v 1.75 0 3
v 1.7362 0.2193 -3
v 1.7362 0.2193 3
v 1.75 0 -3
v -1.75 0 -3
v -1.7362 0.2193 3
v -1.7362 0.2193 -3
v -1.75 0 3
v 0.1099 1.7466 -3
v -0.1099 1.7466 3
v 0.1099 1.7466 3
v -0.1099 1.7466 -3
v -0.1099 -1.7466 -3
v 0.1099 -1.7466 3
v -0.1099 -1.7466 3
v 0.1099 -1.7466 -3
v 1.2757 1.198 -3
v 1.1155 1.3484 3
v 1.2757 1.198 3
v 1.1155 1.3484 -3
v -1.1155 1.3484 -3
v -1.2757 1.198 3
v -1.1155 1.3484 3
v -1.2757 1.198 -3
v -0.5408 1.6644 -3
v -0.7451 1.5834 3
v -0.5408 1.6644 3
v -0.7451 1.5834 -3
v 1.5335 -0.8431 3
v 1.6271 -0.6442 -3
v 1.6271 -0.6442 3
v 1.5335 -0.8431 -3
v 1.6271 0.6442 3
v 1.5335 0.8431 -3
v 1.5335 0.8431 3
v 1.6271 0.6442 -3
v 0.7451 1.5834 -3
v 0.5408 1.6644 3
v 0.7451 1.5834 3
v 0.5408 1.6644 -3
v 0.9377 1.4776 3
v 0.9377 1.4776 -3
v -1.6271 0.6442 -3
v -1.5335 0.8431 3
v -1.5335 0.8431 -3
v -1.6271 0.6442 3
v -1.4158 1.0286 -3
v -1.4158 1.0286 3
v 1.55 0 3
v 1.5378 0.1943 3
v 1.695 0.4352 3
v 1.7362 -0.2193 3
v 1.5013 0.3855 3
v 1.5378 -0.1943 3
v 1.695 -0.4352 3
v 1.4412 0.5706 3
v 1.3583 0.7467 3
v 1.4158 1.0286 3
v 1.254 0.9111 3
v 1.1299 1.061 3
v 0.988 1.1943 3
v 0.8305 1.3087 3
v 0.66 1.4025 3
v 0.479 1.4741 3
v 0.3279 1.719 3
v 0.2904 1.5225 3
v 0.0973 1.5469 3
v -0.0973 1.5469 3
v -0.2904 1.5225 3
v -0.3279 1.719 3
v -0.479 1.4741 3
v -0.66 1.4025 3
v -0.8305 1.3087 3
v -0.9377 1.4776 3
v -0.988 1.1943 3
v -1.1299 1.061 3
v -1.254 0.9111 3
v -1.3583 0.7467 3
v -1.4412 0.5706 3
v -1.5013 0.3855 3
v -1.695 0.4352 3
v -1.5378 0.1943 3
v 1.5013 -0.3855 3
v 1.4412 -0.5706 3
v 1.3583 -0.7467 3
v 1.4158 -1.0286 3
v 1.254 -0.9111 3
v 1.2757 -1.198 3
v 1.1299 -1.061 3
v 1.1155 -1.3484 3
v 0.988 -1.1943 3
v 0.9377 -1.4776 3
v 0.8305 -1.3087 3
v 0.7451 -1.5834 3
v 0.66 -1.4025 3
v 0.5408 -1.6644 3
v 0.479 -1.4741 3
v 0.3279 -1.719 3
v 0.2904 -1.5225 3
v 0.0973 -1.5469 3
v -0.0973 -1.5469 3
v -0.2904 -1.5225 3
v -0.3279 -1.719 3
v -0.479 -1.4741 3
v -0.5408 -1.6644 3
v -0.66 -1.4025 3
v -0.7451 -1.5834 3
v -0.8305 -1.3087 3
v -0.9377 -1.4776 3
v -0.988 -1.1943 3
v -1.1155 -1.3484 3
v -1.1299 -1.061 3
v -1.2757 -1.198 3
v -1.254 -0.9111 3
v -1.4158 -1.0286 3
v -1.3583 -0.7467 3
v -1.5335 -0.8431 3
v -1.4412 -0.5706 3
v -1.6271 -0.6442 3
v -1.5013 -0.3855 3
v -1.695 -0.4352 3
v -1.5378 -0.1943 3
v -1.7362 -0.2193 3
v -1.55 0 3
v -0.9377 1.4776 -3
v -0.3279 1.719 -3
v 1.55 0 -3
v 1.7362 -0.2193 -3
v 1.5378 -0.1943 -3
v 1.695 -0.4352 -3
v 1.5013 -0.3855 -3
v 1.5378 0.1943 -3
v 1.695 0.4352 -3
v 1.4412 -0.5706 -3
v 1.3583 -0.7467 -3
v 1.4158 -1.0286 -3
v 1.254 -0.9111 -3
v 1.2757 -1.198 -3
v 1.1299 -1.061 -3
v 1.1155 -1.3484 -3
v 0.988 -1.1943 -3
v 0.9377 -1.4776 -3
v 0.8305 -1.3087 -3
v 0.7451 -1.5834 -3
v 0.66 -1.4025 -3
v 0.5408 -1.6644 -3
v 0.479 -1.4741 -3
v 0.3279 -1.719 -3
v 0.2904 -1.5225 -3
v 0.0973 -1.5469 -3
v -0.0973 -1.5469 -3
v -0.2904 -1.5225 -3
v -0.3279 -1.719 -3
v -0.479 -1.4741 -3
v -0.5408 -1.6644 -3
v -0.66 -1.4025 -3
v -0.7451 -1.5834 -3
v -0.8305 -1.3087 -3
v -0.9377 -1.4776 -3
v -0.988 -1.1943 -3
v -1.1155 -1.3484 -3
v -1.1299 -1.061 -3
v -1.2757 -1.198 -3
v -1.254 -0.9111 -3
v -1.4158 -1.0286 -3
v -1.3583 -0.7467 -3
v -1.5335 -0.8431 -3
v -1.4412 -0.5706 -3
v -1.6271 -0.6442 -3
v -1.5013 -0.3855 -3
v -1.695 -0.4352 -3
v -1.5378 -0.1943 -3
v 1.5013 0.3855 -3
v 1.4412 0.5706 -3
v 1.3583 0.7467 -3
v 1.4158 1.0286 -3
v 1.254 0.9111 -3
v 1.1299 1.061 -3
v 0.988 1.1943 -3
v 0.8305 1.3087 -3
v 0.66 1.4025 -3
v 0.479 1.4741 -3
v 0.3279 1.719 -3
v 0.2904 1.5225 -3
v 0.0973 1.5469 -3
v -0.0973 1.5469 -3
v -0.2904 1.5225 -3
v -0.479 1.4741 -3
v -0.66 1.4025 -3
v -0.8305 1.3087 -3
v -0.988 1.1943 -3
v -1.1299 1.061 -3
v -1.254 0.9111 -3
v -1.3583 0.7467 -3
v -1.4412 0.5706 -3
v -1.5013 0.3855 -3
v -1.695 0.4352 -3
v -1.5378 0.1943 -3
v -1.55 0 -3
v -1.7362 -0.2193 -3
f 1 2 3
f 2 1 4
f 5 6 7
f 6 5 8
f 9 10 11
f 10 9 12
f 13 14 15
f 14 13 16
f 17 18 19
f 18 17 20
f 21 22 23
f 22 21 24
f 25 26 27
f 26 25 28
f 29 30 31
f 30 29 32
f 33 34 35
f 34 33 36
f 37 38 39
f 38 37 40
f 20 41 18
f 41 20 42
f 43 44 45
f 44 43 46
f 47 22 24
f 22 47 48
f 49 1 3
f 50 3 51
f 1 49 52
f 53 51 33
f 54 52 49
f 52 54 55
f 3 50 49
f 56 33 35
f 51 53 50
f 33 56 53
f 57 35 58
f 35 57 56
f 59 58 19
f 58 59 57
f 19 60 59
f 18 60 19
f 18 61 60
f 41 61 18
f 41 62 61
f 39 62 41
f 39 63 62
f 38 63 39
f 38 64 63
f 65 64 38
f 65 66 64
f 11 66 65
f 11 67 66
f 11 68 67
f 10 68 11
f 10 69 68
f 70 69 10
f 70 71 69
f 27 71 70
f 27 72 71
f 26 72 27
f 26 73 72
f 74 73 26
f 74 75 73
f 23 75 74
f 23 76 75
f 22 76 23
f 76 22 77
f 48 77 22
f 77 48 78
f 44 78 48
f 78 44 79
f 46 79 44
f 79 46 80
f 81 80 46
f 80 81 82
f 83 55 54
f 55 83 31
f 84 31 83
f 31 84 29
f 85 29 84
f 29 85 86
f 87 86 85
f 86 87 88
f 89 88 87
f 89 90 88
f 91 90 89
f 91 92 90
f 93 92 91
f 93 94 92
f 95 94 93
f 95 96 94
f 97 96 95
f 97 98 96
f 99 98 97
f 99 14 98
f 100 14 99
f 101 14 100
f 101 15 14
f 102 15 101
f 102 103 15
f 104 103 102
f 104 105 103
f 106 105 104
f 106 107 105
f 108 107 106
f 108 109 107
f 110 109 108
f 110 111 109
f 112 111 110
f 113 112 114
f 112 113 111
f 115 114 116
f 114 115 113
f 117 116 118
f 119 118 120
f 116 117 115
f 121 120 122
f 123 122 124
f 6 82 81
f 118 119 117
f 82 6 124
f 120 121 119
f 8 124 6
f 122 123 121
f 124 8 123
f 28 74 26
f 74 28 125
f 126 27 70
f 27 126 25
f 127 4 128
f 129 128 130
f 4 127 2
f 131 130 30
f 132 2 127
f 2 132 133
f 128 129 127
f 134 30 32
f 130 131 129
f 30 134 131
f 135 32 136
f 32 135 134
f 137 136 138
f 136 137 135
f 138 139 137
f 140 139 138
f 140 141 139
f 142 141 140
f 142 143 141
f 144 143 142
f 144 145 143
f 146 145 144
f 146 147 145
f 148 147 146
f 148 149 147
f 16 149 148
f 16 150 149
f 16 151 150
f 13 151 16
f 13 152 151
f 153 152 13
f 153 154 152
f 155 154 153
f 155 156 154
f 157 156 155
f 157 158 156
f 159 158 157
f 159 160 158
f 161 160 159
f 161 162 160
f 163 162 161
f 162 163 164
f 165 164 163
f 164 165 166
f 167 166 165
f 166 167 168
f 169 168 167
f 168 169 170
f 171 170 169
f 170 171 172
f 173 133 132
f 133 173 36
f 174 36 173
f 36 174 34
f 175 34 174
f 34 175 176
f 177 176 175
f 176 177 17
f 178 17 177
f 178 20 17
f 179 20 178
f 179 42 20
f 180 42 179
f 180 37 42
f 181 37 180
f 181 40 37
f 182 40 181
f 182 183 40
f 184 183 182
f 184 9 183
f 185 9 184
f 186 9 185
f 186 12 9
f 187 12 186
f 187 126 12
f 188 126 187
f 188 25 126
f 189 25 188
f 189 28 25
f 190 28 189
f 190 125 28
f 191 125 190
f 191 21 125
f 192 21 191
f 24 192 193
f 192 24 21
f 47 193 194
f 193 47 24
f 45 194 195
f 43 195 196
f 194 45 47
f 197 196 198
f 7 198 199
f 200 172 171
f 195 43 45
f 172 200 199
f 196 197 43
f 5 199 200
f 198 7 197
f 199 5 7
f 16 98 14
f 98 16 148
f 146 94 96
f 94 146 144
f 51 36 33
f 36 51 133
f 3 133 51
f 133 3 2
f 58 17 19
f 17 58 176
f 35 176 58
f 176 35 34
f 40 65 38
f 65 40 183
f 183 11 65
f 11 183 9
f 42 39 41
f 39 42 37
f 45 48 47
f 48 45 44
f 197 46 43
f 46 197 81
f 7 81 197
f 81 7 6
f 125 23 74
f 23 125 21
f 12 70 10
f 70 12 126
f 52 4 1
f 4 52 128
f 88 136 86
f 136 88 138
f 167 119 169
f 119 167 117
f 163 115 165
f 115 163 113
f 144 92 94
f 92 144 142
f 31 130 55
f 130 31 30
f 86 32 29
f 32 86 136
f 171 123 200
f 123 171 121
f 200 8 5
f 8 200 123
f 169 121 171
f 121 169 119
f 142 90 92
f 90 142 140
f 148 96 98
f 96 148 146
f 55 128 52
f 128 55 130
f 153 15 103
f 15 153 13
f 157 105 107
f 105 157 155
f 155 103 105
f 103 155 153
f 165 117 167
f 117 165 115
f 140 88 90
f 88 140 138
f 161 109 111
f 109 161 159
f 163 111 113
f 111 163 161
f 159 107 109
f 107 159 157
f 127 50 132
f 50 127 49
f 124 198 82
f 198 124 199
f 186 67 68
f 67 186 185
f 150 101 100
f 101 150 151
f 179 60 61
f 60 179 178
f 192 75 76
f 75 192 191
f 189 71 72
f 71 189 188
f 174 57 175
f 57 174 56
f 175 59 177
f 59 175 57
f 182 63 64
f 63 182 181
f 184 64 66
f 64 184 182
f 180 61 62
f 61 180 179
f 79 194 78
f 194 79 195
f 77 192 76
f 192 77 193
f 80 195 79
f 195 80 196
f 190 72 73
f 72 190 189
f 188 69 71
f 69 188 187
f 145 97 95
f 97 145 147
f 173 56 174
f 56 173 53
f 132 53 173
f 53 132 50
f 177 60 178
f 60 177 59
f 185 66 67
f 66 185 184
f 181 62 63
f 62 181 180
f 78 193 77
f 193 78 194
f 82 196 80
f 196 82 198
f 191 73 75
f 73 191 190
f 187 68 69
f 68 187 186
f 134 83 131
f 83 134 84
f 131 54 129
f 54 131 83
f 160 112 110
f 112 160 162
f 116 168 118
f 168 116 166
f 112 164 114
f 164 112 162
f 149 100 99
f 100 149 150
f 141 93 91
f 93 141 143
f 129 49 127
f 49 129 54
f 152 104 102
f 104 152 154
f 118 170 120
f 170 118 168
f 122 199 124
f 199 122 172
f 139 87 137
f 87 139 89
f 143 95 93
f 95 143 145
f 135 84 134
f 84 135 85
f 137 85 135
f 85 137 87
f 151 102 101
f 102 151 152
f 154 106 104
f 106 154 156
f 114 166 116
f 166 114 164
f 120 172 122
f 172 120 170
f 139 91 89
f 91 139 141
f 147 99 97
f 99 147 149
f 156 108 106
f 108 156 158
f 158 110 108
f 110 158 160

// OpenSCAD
$fn = 50;


difference() {
	union() {
		translate(v = [0, 0, -3.0000000000]) {
			cylinder(h = 6, r = 1.7500000000);
		}
	}
	union() {
		translate(v = [0, 0, -100.0000000000]) {
			cylinder(h = 200, r = 1.5500000000);
		}
	}
}
